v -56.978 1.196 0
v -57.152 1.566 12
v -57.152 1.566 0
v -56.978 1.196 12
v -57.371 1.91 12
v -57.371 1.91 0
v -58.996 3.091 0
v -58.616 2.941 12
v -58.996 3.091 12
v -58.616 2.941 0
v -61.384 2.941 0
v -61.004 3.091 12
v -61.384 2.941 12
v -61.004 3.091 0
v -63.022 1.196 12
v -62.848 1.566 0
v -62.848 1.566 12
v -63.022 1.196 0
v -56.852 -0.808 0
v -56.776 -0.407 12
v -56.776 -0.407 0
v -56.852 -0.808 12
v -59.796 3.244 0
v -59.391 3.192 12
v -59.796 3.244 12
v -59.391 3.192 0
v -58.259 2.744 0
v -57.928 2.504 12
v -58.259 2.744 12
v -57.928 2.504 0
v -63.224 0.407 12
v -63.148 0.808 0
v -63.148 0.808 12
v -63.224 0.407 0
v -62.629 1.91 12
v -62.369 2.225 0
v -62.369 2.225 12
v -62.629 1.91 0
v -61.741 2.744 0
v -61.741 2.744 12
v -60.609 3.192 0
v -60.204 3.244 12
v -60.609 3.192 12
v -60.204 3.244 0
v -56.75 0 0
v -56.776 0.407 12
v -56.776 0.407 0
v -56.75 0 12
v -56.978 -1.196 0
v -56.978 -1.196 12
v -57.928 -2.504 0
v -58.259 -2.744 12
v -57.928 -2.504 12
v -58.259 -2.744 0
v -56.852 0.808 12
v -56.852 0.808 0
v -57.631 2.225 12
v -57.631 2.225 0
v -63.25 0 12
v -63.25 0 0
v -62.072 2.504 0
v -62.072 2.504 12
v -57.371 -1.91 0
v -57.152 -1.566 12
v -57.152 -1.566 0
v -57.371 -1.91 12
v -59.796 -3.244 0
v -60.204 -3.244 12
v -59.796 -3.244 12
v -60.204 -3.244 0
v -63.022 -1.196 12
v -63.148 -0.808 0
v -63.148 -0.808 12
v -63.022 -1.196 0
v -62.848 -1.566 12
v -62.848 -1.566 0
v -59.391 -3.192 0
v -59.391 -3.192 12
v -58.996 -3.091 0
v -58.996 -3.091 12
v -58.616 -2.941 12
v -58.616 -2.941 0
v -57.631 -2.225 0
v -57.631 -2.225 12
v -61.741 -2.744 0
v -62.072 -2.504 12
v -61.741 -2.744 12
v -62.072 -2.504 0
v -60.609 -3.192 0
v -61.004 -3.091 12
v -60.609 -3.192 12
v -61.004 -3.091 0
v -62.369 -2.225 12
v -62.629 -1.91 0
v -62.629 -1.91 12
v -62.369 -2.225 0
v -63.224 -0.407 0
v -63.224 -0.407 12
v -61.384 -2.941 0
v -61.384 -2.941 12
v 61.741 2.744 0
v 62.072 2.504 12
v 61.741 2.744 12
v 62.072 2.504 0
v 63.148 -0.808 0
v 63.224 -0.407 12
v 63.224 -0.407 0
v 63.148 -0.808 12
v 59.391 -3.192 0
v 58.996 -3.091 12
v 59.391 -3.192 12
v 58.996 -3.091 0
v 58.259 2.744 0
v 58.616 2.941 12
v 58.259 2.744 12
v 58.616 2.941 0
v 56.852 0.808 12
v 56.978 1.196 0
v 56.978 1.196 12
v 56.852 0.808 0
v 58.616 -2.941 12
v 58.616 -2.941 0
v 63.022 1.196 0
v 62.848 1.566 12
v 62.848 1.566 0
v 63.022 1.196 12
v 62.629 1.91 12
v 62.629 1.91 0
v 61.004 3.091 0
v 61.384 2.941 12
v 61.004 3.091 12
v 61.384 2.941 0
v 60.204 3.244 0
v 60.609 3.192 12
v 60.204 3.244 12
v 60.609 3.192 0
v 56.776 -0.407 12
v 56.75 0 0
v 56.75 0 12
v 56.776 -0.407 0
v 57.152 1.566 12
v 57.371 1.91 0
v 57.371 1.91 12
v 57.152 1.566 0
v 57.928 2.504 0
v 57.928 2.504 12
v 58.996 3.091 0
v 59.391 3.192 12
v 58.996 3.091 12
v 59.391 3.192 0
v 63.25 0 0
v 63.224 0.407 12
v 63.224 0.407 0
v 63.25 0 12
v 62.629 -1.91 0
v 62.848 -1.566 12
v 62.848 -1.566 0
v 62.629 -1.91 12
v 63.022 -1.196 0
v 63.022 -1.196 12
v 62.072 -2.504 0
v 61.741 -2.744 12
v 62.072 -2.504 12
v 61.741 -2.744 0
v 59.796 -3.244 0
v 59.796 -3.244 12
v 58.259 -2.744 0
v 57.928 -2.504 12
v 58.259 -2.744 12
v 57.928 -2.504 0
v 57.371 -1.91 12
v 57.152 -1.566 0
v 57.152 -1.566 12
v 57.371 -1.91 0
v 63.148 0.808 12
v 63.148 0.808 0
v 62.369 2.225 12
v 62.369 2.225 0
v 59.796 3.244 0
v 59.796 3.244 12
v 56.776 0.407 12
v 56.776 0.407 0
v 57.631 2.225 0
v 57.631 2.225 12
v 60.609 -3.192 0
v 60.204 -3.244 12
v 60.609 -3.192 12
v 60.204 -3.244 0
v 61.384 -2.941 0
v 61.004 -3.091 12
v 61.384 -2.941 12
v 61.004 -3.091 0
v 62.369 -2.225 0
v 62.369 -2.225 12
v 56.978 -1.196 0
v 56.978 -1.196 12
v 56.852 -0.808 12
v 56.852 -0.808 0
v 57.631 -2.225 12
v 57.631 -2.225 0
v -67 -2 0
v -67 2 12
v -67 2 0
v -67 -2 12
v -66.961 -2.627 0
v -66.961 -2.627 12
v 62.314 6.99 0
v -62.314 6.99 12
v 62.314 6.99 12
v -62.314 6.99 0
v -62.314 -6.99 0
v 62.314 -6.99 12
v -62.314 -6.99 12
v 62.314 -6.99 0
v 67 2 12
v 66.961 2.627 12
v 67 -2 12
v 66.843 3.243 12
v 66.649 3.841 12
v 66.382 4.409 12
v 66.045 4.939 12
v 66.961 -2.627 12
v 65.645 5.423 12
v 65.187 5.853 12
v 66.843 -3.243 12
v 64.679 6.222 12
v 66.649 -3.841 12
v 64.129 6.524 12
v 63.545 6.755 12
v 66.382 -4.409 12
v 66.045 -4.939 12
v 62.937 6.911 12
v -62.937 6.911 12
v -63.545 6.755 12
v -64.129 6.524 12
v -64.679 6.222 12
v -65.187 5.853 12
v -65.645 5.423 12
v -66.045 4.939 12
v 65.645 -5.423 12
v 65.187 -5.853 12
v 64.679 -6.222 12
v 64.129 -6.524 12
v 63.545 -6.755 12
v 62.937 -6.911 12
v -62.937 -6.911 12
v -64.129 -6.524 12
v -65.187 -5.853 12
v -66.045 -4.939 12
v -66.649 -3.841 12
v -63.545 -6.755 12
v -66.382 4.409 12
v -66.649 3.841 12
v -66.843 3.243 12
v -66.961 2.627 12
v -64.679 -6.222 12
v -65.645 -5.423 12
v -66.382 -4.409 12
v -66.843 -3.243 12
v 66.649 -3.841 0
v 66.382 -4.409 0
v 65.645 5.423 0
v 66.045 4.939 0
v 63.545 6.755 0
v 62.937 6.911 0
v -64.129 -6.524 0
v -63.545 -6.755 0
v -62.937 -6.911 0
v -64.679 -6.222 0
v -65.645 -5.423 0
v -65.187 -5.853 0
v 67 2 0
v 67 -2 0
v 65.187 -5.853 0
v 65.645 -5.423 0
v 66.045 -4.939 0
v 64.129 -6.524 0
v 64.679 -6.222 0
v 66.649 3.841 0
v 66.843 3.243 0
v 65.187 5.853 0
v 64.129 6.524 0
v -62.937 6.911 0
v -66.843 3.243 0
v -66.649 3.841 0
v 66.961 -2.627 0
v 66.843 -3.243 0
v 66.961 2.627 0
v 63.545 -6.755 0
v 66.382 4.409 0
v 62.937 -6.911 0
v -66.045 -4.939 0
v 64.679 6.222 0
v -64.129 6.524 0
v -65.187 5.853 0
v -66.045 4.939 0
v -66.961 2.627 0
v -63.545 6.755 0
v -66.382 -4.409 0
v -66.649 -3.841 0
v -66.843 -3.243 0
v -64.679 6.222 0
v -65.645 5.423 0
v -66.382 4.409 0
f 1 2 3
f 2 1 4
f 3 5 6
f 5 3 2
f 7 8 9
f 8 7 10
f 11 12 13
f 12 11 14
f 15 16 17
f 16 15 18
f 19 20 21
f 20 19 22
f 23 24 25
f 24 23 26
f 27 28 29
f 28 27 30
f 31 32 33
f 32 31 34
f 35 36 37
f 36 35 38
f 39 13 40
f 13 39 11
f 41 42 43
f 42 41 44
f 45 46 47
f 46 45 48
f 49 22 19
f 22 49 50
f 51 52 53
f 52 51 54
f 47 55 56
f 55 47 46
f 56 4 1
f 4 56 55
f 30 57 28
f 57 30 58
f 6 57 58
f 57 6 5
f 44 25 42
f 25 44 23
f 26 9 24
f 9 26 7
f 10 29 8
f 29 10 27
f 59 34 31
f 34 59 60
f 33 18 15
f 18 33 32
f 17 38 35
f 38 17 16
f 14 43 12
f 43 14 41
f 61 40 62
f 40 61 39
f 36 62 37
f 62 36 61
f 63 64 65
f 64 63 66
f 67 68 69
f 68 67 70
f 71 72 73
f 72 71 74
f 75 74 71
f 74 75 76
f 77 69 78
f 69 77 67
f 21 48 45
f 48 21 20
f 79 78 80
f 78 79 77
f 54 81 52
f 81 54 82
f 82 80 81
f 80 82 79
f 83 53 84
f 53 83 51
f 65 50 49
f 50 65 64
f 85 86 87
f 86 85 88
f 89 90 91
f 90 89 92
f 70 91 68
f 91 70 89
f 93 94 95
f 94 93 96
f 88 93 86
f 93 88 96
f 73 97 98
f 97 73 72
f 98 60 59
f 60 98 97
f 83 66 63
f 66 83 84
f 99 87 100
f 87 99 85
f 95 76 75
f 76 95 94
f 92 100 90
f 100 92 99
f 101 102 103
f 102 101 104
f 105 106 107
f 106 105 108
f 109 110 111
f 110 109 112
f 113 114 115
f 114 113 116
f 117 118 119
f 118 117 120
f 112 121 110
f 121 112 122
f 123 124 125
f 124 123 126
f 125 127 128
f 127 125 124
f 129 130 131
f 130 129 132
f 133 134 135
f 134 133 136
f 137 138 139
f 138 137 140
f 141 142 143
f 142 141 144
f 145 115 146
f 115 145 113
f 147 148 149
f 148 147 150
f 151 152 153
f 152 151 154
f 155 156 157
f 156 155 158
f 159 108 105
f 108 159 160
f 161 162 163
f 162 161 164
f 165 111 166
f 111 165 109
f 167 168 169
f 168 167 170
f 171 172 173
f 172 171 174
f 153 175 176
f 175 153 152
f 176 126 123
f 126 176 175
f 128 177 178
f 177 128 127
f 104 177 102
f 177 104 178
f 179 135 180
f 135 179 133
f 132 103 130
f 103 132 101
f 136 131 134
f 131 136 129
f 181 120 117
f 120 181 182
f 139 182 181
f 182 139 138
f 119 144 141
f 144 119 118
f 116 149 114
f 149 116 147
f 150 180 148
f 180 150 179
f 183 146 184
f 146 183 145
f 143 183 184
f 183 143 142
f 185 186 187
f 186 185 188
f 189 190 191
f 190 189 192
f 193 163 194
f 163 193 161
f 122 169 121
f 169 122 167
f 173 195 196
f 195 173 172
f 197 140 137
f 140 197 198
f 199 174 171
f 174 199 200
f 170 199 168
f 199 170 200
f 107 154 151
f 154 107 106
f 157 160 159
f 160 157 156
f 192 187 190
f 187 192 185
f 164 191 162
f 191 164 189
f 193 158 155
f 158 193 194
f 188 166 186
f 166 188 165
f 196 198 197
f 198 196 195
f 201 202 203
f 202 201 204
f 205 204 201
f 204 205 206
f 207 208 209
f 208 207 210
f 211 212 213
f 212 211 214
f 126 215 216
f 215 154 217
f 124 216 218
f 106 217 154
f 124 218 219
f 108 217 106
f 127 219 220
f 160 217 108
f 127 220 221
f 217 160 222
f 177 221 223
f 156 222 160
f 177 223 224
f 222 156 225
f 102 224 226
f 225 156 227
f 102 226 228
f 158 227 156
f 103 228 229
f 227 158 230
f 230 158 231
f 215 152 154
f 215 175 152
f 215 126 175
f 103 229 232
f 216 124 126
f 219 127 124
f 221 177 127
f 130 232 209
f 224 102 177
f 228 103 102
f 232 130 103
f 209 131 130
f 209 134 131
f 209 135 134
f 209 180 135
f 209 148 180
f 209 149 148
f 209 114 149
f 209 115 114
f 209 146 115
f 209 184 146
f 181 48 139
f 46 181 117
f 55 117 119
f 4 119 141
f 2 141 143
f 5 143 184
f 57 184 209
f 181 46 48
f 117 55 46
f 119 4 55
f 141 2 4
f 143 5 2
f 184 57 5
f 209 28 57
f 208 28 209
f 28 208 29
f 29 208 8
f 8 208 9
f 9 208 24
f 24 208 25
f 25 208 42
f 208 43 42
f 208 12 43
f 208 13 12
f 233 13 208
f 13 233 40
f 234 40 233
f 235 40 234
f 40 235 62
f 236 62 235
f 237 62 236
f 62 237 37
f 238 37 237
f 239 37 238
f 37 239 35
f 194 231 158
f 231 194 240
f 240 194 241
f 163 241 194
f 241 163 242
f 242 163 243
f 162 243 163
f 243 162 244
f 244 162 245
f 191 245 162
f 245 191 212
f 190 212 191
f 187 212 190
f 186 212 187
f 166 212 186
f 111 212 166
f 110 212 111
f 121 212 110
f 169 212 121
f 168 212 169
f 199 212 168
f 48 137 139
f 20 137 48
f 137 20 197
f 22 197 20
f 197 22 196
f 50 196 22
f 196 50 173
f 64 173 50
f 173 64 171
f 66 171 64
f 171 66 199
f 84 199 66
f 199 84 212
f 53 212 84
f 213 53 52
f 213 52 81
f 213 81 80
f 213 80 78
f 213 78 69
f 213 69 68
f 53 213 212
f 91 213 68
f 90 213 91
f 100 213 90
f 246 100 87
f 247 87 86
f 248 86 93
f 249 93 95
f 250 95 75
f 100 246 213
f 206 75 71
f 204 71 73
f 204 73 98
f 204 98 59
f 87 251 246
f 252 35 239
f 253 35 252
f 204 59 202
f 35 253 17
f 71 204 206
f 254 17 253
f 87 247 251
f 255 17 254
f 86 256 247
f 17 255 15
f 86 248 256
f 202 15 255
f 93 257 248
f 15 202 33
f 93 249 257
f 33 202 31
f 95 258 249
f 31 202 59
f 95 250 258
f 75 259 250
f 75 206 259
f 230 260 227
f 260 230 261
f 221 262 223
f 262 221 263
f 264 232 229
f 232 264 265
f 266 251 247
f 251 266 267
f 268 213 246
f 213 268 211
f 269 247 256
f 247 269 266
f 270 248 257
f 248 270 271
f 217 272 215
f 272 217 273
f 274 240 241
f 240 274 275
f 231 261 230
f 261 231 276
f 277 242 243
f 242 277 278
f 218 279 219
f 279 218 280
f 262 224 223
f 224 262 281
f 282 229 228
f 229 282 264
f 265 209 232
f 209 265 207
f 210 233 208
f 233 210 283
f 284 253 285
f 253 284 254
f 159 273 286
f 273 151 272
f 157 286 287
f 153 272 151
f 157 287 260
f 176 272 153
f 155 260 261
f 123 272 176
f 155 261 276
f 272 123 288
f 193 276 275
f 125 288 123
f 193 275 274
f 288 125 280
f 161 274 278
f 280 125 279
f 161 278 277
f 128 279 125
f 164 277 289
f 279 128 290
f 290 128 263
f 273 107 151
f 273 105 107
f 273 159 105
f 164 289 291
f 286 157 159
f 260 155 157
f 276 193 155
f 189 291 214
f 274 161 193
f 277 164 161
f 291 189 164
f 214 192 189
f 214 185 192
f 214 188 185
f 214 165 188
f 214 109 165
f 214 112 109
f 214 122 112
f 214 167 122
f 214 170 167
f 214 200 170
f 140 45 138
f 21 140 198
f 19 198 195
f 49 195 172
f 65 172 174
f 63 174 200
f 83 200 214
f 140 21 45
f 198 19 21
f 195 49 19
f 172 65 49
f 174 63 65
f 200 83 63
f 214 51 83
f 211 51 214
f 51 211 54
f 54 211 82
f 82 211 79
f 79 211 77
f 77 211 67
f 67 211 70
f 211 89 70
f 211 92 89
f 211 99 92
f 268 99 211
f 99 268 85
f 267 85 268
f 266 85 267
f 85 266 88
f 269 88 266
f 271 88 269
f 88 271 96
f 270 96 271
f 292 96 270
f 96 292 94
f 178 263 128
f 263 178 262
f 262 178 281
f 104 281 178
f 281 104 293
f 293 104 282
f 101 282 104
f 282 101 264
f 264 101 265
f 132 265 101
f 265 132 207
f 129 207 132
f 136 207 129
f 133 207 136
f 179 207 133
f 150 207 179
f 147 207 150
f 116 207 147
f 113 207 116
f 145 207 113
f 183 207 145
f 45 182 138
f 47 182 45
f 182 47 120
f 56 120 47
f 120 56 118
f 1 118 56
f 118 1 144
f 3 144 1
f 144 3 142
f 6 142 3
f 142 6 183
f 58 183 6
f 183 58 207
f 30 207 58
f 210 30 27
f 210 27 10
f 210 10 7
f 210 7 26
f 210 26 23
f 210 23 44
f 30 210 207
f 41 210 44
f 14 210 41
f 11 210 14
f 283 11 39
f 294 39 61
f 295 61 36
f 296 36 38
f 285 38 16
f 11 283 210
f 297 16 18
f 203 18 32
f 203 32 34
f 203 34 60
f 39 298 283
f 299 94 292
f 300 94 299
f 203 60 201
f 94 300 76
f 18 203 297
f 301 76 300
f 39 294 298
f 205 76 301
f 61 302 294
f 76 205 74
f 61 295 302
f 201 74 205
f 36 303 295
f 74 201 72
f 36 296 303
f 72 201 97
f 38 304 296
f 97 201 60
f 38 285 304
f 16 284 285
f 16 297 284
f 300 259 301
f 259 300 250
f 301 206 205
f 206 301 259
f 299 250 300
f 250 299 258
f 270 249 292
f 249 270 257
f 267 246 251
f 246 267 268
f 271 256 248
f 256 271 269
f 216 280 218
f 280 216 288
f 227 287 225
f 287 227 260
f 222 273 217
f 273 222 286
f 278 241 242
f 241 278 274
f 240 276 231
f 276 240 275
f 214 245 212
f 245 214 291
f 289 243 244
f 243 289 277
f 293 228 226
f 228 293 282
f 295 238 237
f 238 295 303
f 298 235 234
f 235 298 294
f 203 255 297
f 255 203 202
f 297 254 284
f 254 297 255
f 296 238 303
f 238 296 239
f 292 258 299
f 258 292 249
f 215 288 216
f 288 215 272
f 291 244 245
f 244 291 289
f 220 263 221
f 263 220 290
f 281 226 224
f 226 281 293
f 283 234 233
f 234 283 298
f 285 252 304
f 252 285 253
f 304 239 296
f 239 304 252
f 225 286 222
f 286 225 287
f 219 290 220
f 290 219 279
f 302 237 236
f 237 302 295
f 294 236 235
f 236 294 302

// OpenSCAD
$fn = 50;


difference() {
	union() {
		hull() {
			translate(v = [-62.0000000000, 2.0000000000, 0]) {
				cylinder(h = 12, r = 5);
			}
			translate(v = [62.0000000000, 2.0000000000, 0]) {
				cylinder(h = 12, r = 5);
			}
			translate(v = [-62.0000000000, -2.0000000000, 0]) {
				cylinder(h = 12, r = 5);
			}
			translate(v = [62.0000000000, -2.0000000000, 0]) {
				cylinder(h = 12, r = 5);
			}
		}
	}
	union() {
		translate(v = [-60.0000000000, 0.0000000000, -100.0000000000]) {
			cylinder(h = 200, r = 3.2500000000);
		}
		translate(v = [-60.0000000000, 0.0000000000, -100.0000000000]) {
			cylinder(h = 200, r = 3.2500000000);
		}
		translate(v = [60.0000000000, 0.0000000000, -100.0000000000]) {
			cylinder(h = 200, r = 3.2500000000);
		}
		translate(v = [60.0000000000, 0.0000000000, -100.0000000000]) {
			cylinder(h = 200, r = 3.2500000000);
		}
	}
}
